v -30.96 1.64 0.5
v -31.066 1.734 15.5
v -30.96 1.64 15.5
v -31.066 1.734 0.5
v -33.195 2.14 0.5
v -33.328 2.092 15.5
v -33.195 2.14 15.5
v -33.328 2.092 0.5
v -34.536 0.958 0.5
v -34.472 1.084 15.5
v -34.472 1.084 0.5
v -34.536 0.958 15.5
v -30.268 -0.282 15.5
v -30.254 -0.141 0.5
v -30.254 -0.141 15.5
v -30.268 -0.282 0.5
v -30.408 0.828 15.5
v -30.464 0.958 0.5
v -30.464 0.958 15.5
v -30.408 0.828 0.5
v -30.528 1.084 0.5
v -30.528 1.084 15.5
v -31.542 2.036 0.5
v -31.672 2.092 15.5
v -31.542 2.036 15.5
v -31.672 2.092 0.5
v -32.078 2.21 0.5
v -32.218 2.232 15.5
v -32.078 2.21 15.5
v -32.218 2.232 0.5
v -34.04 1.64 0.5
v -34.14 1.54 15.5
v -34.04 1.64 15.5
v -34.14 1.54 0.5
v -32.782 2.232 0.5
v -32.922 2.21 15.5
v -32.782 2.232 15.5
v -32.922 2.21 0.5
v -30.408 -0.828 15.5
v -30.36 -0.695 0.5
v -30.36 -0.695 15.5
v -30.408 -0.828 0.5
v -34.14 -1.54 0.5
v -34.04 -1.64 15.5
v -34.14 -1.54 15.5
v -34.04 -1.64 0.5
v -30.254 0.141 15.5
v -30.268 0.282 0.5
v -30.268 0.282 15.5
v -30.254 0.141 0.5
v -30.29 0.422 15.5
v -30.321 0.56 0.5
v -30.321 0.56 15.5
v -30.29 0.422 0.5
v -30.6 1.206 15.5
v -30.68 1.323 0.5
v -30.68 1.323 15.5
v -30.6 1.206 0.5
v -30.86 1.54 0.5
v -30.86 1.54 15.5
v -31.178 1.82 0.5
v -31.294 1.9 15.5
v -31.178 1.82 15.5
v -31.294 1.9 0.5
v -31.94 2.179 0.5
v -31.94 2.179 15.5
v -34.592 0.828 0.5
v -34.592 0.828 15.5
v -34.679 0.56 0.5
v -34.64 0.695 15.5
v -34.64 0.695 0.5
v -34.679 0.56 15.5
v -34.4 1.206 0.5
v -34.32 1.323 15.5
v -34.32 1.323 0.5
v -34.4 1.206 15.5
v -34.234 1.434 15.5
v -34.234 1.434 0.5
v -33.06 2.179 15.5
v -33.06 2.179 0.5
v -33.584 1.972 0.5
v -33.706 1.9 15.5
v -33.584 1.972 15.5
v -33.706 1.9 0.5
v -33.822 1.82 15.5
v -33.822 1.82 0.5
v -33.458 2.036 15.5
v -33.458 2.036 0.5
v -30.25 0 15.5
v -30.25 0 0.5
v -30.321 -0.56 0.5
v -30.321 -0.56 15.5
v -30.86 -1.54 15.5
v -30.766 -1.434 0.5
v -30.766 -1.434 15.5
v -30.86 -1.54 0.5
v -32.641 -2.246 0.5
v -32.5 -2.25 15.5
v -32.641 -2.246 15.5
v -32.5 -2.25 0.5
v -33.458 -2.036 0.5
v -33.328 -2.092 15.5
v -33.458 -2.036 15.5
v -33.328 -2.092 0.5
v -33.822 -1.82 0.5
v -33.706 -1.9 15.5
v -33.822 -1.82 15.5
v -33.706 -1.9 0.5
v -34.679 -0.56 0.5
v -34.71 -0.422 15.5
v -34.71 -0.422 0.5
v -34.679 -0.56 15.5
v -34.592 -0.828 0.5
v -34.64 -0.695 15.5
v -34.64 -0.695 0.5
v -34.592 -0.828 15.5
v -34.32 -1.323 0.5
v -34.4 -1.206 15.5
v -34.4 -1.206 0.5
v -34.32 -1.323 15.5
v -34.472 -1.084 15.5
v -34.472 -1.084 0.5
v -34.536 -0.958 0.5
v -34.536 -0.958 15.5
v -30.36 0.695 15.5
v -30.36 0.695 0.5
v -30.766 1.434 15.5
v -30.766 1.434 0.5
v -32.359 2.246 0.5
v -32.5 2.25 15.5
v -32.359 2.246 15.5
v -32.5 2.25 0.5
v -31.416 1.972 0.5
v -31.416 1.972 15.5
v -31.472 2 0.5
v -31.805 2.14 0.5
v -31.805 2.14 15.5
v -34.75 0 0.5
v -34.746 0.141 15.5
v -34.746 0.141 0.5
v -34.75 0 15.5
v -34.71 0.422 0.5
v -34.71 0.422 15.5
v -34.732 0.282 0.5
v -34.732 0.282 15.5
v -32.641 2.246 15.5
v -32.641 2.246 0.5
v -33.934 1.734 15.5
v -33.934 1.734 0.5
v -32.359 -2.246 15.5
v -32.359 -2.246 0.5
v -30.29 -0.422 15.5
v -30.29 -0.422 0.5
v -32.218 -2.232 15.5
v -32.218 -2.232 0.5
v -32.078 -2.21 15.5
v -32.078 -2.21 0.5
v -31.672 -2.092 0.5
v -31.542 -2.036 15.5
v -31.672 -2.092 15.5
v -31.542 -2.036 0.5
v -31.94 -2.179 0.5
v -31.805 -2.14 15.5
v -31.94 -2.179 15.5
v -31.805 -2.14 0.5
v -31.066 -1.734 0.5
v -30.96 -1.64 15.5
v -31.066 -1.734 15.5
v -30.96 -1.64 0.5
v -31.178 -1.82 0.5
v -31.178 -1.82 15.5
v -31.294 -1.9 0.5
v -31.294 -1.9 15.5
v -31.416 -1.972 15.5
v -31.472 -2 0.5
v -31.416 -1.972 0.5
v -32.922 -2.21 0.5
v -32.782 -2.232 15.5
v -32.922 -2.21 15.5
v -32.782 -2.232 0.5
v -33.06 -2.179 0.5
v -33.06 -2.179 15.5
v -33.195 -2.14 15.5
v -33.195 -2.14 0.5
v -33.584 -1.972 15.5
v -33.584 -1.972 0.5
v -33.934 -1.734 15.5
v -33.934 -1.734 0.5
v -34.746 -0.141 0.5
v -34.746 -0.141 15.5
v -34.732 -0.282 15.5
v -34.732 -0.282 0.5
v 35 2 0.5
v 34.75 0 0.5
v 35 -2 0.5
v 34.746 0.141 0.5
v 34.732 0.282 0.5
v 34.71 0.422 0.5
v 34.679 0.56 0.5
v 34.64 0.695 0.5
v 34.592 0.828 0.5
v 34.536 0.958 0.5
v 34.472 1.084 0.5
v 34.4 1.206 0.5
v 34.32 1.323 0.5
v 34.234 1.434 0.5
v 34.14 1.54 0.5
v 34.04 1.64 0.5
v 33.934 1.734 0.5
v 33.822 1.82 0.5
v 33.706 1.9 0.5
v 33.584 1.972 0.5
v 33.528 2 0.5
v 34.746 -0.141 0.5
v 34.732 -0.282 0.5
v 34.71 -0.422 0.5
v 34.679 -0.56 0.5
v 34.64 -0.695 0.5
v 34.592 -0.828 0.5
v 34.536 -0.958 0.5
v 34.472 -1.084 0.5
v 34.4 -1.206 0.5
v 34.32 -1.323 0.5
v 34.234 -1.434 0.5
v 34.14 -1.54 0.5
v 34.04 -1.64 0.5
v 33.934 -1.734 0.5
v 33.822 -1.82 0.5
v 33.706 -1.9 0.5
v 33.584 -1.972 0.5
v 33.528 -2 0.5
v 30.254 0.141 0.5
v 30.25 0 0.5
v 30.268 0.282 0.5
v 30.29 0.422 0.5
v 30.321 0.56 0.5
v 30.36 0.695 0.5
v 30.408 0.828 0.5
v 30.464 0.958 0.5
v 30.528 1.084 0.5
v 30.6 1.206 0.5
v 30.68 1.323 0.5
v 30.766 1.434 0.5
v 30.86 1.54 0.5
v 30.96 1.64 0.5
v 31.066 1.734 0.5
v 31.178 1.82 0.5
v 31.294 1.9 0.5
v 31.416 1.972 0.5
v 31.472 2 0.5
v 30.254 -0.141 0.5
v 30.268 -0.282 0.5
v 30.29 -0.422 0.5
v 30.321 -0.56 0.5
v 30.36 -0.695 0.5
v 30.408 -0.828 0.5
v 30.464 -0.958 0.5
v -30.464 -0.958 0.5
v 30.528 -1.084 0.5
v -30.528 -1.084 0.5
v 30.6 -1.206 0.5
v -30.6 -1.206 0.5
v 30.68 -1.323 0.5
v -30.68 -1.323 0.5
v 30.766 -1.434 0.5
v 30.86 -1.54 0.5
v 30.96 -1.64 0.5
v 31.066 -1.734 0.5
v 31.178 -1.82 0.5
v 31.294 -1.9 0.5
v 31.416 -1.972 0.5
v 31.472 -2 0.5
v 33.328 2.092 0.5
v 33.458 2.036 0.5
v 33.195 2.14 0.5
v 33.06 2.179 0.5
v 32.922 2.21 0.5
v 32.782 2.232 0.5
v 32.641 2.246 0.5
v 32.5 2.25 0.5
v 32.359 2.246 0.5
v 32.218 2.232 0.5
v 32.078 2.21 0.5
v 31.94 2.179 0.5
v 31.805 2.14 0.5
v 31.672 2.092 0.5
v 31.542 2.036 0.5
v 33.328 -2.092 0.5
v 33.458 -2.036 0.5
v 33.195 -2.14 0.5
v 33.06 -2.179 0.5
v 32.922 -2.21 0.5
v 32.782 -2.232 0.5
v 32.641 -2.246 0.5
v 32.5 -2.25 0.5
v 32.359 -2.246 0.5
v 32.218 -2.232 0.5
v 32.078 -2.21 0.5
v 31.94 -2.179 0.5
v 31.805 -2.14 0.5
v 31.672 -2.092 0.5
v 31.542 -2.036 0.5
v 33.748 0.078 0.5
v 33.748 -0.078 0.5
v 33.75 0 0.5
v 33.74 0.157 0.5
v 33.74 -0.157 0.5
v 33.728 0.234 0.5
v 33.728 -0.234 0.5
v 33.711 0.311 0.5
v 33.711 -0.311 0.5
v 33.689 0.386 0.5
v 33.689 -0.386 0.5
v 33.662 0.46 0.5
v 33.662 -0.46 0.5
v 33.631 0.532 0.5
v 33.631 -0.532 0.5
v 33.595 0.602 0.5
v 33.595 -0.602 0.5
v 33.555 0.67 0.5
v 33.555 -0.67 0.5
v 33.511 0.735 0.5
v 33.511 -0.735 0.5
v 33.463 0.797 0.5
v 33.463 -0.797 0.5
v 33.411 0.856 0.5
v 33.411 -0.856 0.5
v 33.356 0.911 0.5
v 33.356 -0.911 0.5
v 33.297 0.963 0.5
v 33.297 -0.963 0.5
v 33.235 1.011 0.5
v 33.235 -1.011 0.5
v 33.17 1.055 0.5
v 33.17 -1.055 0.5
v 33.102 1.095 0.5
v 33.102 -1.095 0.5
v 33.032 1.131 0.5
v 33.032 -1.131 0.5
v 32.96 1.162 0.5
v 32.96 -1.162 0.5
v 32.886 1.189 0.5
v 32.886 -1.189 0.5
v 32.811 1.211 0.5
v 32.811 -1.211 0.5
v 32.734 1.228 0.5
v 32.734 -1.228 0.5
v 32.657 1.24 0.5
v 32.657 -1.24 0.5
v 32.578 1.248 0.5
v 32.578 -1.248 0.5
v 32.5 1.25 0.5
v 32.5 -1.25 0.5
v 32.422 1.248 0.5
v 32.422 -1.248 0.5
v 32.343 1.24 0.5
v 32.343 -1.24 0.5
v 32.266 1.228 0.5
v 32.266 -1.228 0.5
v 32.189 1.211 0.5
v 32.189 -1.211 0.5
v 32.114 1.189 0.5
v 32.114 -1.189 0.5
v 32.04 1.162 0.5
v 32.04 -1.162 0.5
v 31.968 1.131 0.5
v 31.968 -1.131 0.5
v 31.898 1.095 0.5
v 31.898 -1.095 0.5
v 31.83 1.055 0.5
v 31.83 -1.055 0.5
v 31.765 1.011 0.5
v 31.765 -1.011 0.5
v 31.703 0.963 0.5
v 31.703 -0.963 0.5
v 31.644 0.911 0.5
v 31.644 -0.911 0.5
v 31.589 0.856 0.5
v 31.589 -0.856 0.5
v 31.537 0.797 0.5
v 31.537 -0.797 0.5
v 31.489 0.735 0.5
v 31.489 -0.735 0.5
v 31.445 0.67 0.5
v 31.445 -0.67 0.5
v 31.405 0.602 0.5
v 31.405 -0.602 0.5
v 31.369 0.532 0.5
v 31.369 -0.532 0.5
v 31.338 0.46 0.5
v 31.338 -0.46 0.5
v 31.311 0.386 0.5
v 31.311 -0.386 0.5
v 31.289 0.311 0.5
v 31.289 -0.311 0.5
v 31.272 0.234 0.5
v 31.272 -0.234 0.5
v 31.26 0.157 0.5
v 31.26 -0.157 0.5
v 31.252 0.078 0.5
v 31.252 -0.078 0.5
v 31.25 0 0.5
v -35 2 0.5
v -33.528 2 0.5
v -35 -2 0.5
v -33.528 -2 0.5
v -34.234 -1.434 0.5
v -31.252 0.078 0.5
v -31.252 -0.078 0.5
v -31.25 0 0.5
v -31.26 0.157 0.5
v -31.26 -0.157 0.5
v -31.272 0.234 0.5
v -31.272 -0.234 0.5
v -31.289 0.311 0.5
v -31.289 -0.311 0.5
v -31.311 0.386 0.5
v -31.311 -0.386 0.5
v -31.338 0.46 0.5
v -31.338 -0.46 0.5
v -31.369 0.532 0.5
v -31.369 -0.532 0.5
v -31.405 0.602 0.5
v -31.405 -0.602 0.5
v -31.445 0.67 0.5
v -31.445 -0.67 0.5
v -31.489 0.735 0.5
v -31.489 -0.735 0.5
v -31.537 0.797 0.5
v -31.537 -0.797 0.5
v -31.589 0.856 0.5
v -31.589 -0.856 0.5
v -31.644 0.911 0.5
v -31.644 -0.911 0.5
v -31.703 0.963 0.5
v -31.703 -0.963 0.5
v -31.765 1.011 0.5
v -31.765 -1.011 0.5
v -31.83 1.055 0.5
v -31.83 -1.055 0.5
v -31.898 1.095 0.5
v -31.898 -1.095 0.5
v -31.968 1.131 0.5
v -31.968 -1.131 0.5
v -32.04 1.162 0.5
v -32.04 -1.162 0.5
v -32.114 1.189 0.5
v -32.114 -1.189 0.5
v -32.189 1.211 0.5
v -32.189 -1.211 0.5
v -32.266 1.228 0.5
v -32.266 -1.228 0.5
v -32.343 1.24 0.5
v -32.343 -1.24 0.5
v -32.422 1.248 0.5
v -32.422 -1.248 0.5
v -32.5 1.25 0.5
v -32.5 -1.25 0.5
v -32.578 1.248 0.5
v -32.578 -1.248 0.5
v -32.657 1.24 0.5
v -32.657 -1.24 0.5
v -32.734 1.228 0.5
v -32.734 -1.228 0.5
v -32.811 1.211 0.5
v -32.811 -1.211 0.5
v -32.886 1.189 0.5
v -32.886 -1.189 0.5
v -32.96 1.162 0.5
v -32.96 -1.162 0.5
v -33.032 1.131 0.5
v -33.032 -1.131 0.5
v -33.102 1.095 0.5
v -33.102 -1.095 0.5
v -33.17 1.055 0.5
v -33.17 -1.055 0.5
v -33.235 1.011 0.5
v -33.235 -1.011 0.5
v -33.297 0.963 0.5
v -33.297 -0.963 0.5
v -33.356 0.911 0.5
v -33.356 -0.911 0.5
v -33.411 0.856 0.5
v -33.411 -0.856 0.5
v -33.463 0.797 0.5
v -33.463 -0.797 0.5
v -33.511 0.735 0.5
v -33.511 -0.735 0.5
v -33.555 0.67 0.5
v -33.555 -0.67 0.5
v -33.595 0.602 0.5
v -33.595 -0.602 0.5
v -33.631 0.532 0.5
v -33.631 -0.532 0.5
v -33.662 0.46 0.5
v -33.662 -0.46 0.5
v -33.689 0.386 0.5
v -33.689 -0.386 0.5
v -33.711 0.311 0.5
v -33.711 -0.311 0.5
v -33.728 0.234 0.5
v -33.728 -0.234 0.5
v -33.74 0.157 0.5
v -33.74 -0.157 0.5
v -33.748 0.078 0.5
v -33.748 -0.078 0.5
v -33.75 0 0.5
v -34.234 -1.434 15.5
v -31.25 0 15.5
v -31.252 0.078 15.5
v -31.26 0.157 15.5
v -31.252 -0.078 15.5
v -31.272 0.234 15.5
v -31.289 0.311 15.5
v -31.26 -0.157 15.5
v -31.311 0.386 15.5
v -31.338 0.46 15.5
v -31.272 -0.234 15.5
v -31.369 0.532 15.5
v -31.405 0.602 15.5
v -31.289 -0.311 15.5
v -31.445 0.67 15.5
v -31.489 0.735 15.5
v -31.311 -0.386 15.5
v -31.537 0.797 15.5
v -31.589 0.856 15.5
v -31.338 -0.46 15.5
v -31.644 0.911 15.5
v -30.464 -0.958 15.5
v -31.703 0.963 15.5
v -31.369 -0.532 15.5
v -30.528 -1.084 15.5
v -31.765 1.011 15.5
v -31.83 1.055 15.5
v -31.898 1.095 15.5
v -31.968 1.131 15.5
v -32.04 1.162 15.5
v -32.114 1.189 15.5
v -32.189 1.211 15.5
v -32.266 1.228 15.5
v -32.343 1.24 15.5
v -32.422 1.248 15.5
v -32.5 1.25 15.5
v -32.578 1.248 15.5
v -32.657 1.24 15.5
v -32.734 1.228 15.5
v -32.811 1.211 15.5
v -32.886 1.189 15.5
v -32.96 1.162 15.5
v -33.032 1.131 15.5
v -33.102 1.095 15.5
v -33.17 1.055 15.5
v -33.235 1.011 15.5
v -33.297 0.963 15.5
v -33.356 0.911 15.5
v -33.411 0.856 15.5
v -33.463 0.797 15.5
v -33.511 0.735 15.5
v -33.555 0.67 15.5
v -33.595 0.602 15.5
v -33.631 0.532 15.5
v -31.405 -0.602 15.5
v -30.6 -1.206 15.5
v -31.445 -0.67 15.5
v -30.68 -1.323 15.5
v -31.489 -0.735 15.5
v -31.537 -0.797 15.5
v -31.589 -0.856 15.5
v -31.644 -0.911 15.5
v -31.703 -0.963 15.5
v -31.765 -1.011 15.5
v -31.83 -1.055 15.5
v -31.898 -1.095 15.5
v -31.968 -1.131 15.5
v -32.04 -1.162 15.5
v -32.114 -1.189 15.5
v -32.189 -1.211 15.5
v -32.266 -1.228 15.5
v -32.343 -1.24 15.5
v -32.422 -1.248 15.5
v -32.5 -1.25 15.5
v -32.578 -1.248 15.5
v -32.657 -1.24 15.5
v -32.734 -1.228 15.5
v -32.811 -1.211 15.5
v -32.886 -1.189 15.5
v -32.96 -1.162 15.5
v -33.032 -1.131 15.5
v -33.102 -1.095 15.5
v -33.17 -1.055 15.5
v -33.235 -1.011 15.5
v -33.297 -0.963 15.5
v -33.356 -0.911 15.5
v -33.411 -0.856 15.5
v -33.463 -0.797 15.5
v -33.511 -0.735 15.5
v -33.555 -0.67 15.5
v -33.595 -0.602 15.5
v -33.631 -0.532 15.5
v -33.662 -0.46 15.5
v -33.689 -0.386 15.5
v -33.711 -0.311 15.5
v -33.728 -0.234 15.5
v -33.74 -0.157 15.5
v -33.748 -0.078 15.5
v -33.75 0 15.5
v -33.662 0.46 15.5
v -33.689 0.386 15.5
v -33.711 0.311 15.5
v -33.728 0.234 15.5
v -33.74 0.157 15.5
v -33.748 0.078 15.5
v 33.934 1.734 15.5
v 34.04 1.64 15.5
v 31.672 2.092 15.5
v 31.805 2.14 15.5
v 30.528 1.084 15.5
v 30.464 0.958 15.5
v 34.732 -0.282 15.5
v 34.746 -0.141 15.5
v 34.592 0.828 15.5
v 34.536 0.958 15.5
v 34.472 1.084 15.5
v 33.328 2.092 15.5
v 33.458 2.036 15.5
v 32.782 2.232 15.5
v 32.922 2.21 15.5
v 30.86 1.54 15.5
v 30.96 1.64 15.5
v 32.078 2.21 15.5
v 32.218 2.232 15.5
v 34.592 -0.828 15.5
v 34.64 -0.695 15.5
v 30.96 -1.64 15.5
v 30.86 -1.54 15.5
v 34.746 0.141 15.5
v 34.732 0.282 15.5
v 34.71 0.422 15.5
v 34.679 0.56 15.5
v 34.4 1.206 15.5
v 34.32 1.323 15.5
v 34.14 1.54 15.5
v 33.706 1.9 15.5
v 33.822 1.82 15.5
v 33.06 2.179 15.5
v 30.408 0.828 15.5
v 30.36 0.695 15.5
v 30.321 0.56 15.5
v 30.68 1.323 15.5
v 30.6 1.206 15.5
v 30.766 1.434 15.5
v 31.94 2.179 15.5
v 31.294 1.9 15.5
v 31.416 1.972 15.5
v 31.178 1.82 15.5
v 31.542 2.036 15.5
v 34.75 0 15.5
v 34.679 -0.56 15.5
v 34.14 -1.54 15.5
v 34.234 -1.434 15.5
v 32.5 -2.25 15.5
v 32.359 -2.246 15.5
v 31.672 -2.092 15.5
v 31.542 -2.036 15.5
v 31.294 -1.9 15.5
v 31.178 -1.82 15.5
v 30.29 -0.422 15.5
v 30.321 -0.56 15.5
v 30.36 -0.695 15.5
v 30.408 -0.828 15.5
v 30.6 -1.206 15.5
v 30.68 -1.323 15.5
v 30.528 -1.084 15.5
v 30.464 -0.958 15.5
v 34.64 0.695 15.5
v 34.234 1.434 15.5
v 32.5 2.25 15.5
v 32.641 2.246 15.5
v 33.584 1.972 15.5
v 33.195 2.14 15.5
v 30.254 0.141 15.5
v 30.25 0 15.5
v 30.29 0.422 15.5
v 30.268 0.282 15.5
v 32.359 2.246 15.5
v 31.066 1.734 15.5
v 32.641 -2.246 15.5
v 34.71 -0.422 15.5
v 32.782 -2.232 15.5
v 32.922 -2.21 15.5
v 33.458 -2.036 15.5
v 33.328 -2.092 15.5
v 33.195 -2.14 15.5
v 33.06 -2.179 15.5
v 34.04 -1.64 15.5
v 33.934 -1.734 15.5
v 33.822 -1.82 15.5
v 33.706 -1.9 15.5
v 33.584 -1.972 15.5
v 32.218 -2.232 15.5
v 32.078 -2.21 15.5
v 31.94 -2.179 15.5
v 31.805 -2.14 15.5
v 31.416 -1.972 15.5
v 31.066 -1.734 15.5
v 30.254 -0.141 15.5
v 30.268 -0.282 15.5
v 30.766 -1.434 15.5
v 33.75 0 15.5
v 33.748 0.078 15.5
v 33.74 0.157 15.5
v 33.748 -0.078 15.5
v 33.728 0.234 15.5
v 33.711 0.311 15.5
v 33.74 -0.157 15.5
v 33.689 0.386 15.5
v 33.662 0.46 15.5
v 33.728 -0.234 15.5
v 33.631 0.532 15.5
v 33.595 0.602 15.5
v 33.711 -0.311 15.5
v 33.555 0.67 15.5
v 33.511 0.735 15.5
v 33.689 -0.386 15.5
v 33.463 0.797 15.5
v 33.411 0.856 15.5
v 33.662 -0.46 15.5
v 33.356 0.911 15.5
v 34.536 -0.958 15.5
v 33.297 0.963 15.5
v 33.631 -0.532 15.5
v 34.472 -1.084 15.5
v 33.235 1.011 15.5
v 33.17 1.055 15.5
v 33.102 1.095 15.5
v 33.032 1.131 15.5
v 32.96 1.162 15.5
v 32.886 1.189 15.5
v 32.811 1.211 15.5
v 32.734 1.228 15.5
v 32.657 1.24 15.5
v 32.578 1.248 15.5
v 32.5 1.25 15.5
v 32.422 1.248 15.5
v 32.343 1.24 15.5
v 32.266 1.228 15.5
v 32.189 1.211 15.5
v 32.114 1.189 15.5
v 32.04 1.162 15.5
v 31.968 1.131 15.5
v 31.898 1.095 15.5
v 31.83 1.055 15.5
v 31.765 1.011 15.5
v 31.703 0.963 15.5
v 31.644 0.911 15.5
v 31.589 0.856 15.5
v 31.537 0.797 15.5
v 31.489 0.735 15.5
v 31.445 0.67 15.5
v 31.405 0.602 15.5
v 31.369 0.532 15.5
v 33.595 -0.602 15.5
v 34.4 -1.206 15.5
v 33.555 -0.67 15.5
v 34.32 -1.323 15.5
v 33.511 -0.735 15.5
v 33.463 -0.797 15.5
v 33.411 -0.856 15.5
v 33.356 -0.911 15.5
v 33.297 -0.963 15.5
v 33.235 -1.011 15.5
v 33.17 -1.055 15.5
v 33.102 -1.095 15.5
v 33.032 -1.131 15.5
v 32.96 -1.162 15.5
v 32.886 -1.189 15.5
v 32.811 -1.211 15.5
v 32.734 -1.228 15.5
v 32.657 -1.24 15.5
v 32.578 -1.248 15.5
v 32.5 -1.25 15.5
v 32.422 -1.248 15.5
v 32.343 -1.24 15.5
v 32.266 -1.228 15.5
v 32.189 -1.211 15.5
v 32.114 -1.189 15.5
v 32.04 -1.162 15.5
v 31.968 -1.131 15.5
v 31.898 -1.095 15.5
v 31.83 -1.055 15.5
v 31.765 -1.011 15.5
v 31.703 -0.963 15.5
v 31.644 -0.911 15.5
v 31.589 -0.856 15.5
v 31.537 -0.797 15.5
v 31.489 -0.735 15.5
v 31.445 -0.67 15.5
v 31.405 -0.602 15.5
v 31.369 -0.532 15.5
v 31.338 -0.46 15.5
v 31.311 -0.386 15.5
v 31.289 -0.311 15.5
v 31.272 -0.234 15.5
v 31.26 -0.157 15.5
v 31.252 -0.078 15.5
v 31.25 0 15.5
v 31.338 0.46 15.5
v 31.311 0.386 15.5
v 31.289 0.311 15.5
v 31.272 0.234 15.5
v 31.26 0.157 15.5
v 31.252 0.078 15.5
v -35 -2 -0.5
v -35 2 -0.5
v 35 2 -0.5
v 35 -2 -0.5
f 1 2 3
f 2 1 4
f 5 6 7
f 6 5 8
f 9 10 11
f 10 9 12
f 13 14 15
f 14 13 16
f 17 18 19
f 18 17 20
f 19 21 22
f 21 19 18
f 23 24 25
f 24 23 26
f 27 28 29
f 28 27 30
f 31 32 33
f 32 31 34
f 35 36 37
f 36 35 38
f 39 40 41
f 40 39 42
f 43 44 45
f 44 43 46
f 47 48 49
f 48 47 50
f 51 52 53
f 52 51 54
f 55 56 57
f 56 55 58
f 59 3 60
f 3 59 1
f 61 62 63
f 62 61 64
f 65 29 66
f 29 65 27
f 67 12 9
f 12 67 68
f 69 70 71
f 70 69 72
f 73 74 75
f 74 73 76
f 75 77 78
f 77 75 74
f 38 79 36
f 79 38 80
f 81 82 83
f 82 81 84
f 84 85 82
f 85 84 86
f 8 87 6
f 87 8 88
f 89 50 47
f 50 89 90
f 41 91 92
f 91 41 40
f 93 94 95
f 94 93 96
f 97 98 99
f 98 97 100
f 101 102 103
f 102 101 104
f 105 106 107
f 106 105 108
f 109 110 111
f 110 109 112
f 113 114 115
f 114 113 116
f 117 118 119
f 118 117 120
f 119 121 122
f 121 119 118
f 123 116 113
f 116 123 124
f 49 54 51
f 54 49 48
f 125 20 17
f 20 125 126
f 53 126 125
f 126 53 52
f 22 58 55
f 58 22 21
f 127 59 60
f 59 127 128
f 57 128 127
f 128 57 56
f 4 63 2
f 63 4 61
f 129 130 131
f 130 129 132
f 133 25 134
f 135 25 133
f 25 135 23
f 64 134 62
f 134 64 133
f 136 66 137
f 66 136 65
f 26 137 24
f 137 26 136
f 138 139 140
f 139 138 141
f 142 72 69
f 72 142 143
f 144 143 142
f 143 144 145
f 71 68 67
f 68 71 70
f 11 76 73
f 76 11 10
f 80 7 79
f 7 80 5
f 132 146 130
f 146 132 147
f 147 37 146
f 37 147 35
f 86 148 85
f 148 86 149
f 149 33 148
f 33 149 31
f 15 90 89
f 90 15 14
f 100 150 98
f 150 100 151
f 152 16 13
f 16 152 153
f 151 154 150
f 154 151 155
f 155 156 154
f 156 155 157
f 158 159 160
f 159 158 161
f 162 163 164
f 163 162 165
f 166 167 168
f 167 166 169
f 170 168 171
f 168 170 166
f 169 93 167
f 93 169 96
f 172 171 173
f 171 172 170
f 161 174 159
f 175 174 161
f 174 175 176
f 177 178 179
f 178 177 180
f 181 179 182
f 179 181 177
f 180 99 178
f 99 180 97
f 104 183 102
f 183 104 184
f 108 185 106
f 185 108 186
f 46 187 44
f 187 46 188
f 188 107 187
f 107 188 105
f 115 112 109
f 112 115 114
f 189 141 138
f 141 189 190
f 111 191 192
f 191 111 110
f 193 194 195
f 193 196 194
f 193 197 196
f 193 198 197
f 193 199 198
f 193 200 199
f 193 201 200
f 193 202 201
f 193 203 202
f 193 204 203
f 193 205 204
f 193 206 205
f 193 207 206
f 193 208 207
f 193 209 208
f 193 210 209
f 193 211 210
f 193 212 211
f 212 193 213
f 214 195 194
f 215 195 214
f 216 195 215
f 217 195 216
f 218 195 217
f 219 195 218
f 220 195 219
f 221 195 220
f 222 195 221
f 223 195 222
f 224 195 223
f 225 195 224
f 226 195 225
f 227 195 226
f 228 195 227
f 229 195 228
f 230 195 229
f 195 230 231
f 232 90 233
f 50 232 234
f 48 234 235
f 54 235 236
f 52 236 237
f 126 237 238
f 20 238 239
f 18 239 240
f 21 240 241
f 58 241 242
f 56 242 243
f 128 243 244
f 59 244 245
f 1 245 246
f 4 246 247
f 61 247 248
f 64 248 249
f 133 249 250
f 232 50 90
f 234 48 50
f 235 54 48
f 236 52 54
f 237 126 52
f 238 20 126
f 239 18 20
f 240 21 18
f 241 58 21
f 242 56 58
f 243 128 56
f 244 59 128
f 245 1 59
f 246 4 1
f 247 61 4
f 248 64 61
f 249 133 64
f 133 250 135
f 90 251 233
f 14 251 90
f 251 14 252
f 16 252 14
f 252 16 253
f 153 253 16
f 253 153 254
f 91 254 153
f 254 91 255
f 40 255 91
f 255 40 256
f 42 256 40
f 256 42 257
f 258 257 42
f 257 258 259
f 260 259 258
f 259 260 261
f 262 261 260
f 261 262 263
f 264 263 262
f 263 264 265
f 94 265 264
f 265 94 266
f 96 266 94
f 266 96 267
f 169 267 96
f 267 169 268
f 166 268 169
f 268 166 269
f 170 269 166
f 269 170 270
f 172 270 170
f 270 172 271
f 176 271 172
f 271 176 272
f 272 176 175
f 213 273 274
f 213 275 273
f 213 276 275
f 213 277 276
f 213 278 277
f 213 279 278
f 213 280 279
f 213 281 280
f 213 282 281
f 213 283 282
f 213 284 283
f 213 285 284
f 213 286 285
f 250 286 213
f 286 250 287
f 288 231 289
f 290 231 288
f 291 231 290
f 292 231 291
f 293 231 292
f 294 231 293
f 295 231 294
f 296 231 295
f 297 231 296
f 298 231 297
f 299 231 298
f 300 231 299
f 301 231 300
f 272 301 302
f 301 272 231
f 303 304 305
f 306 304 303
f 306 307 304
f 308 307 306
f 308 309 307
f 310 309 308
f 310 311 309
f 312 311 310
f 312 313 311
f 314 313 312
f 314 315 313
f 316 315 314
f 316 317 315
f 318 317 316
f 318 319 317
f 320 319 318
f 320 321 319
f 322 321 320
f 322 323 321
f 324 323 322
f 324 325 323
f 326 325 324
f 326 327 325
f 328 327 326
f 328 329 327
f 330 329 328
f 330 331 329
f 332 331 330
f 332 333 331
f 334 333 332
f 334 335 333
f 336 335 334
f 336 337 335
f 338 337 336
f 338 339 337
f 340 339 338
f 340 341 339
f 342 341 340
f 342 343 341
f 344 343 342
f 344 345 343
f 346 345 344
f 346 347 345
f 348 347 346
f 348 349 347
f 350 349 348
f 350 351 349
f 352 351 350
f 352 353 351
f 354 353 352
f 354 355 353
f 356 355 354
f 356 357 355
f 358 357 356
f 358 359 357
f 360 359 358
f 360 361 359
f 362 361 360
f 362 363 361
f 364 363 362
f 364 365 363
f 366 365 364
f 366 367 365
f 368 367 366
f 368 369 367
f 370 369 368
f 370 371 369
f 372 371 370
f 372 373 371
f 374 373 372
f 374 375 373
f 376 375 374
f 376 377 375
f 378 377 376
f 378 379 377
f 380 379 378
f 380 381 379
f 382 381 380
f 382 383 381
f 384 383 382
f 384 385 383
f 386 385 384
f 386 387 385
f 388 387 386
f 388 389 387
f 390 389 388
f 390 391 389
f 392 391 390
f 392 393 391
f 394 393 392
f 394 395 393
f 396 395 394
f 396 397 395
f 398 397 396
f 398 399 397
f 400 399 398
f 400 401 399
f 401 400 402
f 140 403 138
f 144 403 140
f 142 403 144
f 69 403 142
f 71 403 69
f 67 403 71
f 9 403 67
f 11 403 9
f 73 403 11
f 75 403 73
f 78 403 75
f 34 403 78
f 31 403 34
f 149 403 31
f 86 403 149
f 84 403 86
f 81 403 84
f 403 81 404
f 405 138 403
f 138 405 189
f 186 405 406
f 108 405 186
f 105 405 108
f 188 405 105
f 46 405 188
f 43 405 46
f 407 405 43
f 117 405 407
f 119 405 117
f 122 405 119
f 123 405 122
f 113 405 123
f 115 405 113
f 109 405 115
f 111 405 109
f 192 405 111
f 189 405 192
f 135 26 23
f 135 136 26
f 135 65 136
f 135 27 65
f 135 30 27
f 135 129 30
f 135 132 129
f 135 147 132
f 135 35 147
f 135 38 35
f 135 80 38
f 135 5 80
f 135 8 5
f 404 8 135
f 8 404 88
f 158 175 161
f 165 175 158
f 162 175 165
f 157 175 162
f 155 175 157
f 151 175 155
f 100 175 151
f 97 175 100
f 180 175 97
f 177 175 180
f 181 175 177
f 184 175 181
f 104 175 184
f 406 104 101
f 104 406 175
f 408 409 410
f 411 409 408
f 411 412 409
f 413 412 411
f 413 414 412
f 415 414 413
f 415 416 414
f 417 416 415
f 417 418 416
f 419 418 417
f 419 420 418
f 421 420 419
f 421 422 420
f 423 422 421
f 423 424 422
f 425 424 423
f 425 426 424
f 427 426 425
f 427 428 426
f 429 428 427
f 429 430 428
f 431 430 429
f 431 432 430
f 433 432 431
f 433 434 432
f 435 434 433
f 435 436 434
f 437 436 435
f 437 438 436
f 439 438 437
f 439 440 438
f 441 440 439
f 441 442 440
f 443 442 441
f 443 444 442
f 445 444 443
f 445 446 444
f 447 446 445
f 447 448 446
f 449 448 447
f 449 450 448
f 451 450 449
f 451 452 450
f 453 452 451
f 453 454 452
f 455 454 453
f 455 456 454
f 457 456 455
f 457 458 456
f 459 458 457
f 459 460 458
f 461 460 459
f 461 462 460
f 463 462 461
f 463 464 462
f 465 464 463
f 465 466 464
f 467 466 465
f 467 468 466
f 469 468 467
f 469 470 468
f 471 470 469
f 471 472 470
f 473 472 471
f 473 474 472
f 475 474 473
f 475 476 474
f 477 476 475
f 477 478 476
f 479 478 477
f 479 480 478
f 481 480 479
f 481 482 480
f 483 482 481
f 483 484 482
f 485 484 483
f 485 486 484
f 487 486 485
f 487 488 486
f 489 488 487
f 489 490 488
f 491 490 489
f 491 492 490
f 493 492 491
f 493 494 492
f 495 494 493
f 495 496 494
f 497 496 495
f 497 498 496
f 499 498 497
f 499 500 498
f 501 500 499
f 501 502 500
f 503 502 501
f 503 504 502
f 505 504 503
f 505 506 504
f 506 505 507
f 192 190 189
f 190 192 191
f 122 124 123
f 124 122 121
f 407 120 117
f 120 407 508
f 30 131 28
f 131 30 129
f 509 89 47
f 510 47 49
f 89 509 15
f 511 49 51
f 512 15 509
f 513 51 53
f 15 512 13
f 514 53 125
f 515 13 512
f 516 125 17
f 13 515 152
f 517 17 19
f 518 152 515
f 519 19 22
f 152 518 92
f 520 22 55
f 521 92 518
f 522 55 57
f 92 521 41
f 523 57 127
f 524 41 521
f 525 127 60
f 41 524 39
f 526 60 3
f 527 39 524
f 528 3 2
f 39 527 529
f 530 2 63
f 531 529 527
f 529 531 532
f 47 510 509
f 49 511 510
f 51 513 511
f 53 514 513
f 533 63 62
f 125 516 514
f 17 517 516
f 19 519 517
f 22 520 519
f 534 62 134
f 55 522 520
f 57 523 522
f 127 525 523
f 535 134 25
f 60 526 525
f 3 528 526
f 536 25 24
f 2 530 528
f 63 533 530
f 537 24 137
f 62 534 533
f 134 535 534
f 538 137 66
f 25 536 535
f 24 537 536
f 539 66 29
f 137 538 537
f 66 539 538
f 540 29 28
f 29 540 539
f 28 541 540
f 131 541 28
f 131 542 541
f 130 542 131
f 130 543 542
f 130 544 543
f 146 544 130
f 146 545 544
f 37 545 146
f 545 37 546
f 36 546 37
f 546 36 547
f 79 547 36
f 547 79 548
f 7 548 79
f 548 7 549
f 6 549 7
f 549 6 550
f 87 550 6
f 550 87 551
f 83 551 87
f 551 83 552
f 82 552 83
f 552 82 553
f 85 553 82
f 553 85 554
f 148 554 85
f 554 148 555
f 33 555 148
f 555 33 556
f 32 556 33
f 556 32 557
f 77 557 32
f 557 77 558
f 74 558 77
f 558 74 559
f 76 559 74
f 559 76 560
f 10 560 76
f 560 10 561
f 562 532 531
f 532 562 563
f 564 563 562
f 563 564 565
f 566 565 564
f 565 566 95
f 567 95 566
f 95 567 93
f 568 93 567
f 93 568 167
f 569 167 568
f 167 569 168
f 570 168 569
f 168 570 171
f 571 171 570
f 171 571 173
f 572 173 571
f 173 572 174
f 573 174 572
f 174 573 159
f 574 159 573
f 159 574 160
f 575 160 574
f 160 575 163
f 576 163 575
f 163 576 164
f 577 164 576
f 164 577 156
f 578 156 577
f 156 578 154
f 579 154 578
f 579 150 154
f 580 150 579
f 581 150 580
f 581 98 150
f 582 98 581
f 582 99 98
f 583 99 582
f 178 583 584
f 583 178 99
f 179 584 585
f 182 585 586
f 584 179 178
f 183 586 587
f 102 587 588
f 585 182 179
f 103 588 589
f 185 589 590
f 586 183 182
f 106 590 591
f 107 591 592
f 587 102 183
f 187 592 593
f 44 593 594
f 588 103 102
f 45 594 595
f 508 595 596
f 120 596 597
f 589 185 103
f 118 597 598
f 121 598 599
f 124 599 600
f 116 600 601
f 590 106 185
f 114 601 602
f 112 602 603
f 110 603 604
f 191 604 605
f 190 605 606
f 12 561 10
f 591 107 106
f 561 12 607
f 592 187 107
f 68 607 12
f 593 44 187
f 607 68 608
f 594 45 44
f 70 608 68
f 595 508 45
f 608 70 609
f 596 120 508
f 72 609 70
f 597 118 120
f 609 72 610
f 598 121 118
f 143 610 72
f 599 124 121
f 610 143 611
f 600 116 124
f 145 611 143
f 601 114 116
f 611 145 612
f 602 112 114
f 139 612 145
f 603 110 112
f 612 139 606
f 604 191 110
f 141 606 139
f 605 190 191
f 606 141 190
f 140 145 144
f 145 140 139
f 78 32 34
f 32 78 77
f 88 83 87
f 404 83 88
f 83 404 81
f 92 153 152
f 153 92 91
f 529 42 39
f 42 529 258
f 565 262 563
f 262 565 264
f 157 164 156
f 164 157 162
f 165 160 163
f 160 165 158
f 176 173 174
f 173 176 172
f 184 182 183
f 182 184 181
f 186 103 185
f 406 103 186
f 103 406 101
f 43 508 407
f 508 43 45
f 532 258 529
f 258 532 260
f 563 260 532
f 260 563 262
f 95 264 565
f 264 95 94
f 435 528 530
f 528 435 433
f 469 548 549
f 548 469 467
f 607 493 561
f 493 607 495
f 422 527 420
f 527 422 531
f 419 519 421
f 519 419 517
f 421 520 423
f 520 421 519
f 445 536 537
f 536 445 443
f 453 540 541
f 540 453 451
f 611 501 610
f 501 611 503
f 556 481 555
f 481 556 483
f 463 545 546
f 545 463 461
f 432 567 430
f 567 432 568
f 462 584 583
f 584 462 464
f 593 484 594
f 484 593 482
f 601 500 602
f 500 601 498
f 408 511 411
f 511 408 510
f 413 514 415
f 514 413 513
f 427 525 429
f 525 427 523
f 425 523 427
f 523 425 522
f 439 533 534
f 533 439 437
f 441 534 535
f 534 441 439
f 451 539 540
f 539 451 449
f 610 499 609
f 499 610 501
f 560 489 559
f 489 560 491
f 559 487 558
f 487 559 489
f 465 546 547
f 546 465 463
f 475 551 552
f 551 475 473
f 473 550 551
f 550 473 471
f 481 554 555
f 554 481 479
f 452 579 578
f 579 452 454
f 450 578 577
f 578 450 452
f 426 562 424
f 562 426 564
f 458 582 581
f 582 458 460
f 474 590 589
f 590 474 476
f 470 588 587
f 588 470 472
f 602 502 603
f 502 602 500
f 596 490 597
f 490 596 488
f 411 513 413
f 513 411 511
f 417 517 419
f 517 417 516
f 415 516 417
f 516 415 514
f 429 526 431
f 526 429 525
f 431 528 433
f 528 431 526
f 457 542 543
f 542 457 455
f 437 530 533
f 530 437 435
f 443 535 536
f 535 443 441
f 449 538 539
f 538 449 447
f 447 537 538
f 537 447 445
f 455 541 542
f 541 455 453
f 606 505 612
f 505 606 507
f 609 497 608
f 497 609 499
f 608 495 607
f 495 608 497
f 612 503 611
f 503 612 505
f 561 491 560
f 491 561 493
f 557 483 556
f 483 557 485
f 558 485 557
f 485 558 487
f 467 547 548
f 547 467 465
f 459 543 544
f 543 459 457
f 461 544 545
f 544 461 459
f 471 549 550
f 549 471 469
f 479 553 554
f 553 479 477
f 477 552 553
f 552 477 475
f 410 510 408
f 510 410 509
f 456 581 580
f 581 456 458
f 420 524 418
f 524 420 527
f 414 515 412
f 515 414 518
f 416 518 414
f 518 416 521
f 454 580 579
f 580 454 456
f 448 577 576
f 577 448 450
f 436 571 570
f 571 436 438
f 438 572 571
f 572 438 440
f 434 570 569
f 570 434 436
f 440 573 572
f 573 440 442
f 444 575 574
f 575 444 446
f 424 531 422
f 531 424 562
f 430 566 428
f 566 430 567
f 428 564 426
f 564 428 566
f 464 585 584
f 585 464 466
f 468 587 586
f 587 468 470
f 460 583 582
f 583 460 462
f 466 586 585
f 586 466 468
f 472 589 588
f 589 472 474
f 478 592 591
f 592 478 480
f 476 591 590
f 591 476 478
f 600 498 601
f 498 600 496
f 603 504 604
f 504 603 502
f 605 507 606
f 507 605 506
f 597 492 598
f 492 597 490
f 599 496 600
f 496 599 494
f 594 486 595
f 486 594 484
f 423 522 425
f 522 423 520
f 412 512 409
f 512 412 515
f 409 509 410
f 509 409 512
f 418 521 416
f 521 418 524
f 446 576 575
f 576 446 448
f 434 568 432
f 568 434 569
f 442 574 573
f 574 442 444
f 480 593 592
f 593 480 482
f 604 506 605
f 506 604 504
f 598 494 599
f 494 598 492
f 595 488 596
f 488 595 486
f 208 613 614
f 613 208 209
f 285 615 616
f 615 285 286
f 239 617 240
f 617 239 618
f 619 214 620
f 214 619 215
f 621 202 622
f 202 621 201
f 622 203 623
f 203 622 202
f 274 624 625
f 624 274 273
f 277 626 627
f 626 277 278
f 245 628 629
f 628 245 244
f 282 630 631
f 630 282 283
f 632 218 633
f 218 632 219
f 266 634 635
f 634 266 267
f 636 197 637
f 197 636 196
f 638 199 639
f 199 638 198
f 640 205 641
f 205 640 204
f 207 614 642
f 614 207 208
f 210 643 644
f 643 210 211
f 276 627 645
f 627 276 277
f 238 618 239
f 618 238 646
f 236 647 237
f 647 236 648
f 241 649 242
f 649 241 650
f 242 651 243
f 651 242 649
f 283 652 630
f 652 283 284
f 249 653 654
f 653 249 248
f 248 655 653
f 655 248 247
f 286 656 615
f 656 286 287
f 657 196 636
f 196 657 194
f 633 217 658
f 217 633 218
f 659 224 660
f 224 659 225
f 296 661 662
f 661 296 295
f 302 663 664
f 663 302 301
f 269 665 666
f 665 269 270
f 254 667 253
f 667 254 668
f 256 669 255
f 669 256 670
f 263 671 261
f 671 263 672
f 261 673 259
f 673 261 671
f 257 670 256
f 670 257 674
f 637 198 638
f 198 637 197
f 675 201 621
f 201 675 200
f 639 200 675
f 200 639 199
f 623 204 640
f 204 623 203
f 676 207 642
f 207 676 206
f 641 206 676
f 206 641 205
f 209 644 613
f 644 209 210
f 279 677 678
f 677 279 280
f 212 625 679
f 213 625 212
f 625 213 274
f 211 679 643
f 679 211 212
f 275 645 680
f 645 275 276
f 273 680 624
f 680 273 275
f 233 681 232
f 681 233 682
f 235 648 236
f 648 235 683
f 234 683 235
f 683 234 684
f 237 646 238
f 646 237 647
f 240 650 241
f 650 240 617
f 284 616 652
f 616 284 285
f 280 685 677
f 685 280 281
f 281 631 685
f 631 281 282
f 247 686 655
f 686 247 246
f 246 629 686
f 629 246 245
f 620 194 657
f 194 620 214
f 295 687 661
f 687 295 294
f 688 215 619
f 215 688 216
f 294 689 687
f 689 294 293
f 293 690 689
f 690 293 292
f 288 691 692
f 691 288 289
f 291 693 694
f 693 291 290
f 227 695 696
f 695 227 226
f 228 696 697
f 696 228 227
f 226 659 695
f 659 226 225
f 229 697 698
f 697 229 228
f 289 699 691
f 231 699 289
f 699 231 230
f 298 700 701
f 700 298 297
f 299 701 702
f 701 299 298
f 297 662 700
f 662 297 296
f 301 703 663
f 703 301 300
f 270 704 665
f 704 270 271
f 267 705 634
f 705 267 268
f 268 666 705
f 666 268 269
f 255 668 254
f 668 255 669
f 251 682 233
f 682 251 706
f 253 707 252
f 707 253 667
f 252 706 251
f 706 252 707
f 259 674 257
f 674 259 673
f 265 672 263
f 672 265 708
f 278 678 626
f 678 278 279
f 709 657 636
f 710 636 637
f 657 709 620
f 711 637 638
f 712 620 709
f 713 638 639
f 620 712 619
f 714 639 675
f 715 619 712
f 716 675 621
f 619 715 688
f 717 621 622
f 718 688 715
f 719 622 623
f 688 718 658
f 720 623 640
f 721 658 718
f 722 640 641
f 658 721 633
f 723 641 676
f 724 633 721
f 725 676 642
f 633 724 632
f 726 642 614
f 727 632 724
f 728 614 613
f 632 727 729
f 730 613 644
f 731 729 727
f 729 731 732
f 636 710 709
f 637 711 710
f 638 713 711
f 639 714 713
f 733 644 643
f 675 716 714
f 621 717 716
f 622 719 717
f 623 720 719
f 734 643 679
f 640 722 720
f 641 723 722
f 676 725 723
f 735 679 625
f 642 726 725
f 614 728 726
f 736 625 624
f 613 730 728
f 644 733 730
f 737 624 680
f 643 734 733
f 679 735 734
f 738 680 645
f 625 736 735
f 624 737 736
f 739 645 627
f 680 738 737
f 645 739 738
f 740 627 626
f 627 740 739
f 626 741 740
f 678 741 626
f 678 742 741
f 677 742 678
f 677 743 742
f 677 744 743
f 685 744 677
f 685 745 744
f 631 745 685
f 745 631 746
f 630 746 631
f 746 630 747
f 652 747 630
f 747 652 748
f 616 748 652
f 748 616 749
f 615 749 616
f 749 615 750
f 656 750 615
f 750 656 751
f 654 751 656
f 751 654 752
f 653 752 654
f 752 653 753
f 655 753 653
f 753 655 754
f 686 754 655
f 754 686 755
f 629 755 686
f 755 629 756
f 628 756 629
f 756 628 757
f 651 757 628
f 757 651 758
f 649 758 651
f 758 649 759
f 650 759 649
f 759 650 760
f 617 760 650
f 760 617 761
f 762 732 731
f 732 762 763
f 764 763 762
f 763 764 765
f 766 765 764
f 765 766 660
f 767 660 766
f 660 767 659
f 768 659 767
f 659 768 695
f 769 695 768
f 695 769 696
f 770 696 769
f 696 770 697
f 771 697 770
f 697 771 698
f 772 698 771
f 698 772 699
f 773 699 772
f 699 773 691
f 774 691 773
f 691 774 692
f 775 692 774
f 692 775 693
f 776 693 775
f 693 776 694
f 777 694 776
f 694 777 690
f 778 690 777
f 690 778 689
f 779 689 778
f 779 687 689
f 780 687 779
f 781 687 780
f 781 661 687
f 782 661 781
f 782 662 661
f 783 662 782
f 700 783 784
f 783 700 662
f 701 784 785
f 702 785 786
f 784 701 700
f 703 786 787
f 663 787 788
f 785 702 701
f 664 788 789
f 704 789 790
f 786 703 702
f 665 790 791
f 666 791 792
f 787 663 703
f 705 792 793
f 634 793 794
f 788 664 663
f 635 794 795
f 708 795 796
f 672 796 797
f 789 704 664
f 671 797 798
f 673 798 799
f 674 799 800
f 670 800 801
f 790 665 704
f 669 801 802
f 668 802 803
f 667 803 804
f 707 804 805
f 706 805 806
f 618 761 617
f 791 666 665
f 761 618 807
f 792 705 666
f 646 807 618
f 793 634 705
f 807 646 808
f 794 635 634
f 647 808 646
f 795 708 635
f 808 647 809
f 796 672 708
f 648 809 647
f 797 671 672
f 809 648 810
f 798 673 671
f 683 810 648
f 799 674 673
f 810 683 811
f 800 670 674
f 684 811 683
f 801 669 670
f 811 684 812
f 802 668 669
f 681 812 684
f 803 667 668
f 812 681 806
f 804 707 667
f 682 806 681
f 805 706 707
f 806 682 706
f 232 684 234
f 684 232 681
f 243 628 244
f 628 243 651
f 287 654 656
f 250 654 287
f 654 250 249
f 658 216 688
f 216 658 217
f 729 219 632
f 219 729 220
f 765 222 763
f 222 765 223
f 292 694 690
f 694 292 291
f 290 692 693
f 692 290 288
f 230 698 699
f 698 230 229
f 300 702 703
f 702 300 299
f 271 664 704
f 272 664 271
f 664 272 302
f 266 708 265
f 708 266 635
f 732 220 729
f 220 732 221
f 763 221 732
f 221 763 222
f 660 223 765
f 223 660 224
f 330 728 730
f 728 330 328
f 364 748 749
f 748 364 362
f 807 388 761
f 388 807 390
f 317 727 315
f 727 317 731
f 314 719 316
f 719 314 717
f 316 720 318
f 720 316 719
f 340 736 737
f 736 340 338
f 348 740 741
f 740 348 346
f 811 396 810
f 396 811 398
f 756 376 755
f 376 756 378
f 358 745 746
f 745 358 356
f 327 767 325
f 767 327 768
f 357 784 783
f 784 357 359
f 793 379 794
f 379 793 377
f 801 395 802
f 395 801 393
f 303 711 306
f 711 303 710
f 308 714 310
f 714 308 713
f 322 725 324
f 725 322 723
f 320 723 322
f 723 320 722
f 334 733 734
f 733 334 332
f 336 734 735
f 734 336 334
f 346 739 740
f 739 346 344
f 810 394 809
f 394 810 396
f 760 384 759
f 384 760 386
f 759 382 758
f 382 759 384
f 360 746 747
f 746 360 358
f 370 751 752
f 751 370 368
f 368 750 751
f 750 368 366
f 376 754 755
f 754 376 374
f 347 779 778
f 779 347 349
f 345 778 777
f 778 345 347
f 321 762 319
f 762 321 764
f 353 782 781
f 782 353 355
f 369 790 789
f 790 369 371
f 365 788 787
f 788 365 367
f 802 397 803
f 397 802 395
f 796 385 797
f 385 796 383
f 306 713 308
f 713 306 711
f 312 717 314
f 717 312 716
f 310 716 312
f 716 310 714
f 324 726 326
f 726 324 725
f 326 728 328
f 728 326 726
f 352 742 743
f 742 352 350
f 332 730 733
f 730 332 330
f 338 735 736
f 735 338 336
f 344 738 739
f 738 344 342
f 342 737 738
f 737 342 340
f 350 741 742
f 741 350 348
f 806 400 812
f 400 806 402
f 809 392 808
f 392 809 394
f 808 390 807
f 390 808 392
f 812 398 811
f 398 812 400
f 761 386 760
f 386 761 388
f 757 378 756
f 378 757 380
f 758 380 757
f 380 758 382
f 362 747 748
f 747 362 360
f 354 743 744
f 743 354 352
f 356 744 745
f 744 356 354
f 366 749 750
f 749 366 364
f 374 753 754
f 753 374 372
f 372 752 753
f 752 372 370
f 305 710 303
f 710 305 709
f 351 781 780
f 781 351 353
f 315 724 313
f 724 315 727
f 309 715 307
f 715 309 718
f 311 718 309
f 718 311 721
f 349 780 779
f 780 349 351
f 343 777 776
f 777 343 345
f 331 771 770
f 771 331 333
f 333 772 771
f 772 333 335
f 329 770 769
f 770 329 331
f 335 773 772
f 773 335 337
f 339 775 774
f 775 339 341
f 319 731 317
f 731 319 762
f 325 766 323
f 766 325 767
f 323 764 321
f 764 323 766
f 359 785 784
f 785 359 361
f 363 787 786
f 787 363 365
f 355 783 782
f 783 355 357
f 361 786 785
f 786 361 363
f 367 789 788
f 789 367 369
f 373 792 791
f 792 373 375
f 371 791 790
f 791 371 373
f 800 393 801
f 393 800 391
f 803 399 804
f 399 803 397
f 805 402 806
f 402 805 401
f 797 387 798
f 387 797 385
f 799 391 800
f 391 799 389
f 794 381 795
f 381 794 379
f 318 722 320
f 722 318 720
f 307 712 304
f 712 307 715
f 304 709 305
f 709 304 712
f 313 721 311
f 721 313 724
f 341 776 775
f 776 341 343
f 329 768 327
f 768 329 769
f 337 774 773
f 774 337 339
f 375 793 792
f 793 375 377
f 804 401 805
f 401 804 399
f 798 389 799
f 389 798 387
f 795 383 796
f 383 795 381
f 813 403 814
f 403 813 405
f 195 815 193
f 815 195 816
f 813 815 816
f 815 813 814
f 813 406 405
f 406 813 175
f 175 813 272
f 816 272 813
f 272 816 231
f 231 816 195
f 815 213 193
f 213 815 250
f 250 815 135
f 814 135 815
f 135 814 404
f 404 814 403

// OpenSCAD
$fn=100;

thickness = 1;
cube([70,4,thickness], center=true);
distance = 65;

module pin()
    difference(){
        cylinder(d=4.5,h=15);
        cylinder(d=2.5,h=15);
    }
translate([-distance/2,0,thickness/2]) pin();
translate([distance/2,0,thickness/2]) pin();
